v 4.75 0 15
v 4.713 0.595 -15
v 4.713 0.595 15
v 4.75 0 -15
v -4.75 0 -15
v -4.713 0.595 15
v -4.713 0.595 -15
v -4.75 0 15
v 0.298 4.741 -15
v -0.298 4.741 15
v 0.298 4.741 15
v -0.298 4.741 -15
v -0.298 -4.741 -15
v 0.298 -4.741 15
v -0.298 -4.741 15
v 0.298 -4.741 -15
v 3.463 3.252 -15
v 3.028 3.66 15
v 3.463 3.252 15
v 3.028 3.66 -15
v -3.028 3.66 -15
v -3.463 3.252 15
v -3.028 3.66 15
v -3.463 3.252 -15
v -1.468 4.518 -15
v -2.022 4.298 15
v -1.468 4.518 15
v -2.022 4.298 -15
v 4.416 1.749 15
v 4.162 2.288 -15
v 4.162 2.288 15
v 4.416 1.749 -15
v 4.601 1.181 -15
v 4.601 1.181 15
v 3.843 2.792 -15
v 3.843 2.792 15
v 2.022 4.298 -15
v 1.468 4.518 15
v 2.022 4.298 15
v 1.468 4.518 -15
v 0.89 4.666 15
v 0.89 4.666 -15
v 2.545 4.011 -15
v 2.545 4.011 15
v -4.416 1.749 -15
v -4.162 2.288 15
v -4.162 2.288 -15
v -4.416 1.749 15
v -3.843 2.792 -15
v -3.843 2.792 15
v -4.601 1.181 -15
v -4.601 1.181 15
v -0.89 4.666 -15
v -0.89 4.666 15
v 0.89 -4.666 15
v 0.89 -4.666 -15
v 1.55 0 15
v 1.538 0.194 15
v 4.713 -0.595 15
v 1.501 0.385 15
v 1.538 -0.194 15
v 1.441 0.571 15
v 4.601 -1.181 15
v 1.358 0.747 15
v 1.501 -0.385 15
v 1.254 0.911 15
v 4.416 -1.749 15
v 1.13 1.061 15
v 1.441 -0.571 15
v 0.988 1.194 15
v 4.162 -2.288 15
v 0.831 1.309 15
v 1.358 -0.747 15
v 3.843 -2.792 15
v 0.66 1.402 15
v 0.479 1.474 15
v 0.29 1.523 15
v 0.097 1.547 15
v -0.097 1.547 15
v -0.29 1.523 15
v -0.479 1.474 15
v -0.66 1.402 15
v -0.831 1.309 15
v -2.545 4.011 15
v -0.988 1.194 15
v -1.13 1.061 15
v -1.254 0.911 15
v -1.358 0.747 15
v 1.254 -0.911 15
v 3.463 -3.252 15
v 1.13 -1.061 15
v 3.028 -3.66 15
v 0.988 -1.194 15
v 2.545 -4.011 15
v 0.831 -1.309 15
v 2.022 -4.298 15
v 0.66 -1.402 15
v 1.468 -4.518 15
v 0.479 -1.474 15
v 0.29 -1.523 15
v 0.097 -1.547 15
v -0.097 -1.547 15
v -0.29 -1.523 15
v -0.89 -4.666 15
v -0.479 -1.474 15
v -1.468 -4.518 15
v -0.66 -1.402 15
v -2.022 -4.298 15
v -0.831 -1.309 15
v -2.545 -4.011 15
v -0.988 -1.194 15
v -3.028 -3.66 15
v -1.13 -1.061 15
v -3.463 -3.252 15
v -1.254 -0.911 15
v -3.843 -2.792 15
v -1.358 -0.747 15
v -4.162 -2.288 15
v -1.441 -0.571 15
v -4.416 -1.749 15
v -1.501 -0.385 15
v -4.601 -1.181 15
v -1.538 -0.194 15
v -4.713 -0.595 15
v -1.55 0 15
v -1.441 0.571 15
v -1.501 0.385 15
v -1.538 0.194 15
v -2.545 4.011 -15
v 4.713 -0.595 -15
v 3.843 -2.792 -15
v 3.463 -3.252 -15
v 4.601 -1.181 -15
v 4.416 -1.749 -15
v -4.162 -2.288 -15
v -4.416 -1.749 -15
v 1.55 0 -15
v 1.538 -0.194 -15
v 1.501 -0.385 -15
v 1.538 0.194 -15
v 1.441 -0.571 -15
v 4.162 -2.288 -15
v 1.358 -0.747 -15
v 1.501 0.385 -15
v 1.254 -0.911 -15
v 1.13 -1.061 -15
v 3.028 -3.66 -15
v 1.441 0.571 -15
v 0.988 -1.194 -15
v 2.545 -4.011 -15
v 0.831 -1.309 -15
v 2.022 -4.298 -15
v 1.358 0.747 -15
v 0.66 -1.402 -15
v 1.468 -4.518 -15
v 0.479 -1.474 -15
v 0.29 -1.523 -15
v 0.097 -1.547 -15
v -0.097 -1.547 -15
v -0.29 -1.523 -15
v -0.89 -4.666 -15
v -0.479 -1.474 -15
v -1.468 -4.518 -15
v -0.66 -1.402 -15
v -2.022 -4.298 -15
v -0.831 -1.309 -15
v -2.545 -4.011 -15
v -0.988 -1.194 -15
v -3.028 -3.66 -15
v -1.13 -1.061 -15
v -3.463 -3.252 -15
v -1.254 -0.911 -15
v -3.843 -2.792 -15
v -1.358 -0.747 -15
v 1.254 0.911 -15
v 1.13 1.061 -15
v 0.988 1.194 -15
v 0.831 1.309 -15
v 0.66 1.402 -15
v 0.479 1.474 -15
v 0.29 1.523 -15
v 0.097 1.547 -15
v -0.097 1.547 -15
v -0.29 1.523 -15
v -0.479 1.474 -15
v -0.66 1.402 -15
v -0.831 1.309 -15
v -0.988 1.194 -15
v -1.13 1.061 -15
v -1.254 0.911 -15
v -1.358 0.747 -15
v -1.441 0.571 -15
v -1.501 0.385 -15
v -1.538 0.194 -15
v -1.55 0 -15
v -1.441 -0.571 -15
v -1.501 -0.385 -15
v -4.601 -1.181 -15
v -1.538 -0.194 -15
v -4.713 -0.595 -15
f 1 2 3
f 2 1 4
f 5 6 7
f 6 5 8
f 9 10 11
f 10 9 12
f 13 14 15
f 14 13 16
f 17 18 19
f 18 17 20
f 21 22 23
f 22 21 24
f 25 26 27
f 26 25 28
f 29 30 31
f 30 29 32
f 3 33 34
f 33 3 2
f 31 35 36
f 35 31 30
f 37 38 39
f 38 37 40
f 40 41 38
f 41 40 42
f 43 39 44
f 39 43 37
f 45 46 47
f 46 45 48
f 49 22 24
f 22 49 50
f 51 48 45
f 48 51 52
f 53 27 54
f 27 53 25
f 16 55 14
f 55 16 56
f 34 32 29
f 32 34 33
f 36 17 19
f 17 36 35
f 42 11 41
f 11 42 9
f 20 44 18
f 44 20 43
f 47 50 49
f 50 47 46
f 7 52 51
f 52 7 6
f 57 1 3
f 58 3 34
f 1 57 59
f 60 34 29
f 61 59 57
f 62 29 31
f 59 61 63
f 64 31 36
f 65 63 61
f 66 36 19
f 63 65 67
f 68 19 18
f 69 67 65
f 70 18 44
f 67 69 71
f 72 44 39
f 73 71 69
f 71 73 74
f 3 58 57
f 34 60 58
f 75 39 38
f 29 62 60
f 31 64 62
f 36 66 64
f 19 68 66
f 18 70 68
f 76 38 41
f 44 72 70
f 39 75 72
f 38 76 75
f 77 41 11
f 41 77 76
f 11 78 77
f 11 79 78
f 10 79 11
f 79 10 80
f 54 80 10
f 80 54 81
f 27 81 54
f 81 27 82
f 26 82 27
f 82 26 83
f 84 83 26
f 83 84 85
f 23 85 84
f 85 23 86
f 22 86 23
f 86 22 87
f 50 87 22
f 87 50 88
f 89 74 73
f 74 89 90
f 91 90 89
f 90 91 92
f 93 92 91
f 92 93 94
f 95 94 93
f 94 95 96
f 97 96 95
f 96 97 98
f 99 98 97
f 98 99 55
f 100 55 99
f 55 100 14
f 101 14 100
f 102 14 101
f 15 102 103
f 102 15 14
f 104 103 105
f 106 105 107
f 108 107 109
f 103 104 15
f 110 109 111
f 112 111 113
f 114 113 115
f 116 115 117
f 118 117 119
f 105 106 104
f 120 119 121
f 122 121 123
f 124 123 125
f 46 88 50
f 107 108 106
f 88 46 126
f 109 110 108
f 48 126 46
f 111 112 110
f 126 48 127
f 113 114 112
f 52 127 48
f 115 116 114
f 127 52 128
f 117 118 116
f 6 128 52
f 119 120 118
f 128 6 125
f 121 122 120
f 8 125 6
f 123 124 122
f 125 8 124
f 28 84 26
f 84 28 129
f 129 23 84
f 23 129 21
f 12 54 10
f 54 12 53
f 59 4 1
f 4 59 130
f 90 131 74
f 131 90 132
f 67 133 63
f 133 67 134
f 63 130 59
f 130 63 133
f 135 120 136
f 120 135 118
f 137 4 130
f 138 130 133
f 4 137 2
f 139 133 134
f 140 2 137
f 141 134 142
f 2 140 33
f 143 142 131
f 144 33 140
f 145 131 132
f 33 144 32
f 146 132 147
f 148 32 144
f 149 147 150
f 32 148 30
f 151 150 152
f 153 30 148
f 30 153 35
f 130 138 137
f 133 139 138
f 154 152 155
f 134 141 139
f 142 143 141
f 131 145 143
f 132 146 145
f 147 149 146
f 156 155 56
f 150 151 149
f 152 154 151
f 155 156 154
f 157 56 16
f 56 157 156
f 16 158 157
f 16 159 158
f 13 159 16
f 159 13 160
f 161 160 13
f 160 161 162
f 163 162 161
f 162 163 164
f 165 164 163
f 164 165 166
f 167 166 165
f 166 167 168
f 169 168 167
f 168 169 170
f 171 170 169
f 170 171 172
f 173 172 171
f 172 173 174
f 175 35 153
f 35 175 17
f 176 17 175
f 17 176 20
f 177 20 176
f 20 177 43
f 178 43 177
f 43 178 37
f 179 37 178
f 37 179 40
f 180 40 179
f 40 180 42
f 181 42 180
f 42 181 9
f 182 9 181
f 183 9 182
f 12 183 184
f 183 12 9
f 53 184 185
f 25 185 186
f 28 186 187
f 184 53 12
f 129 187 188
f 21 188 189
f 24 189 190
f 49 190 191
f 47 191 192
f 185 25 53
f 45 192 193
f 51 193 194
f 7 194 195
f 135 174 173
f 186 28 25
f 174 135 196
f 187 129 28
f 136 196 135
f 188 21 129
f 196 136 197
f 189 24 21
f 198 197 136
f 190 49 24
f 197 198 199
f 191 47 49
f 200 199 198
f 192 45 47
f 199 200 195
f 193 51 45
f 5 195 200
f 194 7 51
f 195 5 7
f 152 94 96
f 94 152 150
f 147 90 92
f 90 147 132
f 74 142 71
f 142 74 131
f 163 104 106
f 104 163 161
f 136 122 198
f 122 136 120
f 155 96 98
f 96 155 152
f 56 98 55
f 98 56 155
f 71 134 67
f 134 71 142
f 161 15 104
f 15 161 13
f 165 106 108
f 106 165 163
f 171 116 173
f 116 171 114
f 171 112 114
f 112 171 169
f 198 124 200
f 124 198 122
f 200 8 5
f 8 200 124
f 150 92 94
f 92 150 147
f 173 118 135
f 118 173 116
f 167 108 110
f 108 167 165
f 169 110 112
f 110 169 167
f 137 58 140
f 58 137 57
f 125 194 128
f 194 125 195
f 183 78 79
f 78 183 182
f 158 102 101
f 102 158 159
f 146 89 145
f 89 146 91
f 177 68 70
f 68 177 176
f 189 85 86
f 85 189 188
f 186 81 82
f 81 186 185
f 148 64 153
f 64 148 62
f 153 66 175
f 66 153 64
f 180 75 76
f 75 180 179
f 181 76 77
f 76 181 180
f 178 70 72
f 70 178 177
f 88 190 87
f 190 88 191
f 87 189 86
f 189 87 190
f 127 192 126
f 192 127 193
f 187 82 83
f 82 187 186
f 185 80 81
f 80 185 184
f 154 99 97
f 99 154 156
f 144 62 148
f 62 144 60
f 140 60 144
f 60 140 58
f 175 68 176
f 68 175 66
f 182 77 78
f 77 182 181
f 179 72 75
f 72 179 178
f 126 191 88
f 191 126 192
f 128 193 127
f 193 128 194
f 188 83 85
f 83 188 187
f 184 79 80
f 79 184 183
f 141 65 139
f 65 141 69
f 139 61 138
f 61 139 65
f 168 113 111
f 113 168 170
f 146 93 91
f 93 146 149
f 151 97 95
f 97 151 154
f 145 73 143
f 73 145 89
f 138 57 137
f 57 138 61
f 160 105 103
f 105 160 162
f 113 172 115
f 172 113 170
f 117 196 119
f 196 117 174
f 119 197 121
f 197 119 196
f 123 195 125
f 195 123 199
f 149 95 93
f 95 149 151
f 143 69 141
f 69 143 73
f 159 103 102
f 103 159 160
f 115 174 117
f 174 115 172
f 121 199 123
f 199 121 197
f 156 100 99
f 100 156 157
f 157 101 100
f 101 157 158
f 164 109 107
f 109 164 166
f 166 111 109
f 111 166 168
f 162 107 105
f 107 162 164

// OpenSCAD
$fn = 50;


difference() {
	union() {
		translate(v = [0, 0, -15.0000000000]) {
			cylinder(h = 30, r = 4.7500000000);
		}
	}
	union() {
		translate(v = [0, 0, -100.0000000000]) {
			cylinder(h = 200, r = 1.5500000000);
		}
	}
}
